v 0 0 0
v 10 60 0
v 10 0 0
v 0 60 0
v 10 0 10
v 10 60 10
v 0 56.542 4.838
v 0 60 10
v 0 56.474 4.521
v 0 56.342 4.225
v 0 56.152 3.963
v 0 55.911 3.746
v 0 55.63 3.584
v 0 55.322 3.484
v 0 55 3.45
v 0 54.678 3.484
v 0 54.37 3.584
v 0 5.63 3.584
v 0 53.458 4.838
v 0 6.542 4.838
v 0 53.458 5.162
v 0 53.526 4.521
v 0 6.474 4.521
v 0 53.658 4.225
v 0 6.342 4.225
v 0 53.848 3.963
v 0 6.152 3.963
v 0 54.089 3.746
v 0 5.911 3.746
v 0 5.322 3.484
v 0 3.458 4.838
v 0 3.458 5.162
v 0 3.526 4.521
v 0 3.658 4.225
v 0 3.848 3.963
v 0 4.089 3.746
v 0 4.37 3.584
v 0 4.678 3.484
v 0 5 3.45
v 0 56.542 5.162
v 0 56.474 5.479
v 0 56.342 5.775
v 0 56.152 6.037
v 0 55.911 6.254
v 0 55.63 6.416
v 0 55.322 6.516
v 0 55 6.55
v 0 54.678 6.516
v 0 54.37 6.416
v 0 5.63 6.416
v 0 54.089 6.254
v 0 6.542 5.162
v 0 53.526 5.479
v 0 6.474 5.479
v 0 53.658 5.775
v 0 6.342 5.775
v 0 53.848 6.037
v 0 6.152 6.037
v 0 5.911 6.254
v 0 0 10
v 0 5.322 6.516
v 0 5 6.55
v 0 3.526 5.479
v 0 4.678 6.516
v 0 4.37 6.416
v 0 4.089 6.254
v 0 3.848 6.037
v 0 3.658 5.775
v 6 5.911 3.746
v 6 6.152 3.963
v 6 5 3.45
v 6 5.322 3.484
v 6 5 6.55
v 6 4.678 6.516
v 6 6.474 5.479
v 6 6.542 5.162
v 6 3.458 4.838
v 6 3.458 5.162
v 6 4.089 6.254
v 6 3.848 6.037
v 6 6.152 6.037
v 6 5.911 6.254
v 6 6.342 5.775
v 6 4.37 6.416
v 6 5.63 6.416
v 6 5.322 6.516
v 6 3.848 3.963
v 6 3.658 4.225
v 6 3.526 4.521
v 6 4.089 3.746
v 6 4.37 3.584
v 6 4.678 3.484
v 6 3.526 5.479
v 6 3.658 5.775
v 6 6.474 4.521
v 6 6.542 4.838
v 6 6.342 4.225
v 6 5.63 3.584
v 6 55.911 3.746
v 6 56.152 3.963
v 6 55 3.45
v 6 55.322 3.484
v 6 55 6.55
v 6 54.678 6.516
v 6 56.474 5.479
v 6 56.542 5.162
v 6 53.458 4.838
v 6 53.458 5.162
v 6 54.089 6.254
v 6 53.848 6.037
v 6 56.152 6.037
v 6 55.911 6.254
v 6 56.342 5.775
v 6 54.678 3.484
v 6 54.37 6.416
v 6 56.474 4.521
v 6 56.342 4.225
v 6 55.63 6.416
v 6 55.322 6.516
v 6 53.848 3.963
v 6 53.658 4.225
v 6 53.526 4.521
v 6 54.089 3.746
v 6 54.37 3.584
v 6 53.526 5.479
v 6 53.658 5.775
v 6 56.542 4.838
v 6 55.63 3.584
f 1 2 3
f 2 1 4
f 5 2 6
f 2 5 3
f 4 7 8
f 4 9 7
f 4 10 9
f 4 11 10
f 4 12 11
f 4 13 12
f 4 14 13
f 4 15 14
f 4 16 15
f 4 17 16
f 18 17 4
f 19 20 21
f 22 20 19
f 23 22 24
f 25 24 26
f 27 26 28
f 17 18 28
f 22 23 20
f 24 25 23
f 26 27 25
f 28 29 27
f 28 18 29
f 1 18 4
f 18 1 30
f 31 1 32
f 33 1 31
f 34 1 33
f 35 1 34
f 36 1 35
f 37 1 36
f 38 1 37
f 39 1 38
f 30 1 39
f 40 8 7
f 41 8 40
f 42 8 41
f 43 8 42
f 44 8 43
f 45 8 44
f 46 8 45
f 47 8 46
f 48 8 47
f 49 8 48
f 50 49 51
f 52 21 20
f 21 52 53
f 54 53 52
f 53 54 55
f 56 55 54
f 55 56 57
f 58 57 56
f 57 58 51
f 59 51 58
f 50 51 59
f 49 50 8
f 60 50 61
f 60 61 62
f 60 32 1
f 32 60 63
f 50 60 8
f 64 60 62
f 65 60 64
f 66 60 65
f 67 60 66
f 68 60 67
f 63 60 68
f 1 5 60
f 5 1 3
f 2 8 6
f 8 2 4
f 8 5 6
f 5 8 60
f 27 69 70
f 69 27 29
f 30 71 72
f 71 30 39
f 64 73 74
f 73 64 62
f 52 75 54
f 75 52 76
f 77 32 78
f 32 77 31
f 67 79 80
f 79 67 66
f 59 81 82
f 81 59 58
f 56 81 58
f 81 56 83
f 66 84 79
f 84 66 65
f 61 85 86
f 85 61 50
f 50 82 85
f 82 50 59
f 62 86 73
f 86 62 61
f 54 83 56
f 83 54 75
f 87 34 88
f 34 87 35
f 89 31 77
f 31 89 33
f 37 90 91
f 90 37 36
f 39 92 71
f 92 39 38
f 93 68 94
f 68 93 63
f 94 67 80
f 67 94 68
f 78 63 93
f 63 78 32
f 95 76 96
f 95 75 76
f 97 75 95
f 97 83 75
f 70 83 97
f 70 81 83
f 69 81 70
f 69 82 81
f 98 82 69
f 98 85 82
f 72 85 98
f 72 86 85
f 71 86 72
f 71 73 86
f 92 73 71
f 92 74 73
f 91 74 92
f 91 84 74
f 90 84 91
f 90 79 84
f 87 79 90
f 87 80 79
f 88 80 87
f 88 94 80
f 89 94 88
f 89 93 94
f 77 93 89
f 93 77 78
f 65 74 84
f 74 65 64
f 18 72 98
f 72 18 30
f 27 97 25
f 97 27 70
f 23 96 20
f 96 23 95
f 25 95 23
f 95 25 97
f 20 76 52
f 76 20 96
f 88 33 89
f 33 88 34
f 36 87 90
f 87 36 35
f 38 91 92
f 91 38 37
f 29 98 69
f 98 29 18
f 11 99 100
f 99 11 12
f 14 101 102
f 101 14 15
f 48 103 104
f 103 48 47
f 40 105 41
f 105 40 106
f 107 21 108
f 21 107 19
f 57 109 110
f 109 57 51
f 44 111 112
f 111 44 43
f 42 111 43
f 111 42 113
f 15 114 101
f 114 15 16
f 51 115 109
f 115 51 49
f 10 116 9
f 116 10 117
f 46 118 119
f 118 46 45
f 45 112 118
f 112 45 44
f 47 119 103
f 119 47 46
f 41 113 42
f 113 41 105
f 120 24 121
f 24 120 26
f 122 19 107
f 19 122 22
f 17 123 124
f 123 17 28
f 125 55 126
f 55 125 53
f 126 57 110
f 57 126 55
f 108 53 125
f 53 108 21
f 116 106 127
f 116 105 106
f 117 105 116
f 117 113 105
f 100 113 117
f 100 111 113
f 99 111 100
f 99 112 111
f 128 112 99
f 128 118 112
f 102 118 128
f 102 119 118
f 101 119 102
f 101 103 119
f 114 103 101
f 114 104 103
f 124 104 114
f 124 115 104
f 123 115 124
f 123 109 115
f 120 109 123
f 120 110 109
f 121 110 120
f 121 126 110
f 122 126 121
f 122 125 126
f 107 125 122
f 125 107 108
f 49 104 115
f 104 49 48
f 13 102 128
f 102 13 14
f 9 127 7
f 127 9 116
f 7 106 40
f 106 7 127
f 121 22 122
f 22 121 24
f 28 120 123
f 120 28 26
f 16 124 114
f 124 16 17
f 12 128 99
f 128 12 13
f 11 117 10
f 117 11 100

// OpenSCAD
$fs=0.1;
boxLength = 10;
boxWidth = 60;

makesHoles();

module makesHoles() {
    union() {
        difference() {
            squareBox(boxLength,boxWidth);
            tube(5,5);
            tube(5,boxWidth-5);
        }
    }
}

module squareBox(length,width) {
    linear_extrude(height=10,convexity=8){
        square([length,width]);
    }
}

module tube(height,location) {
    translate([-1,location,height]) {
        rotate([0,90,0]) {
            cylinder(d=3.1,h=7); 
        }
    }
}
